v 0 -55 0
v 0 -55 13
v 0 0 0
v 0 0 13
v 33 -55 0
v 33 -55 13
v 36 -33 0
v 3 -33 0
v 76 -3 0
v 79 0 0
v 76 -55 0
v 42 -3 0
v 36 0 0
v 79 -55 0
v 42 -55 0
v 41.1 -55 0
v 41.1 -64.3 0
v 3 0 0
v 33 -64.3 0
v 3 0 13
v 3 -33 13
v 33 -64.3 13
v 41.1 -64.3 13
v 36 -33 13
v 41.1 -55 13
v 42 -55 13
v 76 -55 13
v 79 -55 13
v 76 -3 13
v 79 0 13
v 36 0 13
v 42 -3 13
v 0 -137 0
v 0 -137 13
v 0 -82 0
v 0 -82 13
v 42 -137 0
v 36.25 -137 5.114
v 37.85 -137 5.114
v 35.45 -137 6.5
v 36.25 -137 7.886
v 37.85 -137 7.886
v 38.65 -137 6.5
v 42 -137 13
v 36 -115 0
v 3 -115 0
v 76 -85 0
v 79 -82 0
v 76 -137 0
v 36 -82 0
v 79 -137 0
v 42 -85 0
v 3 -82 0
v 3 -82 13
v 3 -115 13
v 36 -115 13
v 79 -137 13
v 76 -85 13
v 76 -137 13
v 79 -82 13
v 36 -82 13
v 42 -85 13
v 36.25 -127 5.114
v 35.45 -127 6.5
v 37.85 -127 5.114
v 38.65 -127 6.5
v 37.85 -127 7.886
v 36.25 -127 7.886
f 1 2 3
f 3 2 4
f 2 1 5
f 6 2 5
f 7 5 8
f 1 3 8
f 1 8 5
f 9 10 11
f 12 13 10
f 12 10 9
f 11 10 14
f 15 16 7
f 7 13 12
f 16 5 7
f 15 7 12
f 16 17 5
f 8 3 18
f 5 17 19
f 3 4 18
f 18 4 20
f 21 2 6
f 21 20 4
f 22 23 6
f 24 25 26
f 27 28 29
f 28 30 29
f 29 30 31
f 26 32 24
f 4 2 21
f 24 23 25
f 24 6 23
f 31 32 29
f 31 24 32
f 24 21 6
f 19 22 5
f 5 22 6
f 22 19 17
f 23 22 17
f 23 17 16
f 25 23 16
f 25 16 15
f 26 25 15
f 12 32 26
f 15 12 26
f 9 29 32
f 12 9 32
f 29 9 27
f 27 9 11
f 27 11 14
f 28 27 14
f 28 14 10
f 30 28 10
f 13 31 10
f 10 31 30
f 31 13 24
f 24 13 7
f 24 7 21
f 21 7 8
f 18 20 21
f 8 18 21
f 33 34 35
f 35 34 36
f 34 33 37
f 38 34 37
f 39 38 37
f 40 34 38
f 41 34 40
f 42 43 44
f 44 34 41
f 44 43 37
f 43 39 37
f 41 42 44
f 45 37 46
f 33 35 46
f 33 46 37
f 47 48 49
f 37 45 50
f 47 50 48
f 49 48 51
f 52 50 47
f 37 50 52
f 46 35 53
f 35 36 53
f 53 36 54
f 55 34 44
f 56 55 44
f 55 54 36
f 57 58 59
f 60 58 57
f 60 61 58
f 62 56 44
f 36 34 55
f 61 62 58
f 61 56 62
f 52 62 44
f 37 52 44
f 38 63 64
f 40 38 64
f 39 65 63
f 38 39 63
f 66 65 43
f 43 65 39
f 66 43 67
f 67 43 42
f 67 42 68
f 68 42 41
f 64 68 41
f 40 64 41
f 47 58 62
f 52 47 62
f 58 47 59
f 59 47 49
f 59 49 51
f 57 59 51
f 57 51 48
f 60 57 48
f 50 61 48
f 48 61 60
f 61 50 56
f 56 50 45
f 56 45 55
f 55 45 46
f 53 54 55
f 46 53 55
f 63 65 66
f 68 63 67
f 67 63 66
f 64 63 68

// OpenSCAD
// Two hours minus one latte and 2-3 rounds of payload

beefiness=3;

tabWidth=3;

brickHeight=52; // was 49.5, actual 50.927
brickWidth=34; // was 26.75, actual 33.3248
brickLength=115;

armWidth=33; // was 25.4, actual 31.75
armHeight=33;
armLength=brickLength;
armBuffer=6;

speakerPegDistance=100;
speakerPegDepth=6.3;
speakerPegWidth=3.5;
speakerSlotWidth=8.1; // was 8.4
speakerSlotLength=13;
speakerSlotDepth=speakerPegDepth + 3;

screwDiameterM3=3.2; // caliper says 0.112 inches / 2.8448 mm

bracketWidth=13;


module sBracket() {
    union() {
        difference() {
            
            cube([beefiness + armWidth + armBuffer + brickWidth + beefiness,
                    bracketWidth,
                    beefiness + brickHeight]);
            
            translate([beefiness, 0, 0])
            cube([armWidth,
                    bracketWidth,
                    armHeight]);
            
            translate([beefiness + armWidth + armBuffer, 0, beefiness])
            cube([brickWidth,
                    bracketWidth,
                    brickHeight]);
        }
    }
}

rotate([90, 0, 0])
union() {
    sBracket();
    
    translate([armWidth, 0, brickHeight + beefiness])
    cube([speakerSlotWidth, speakerSlotLength, speakerSlotDepth]);
}

rotate([90, 0, 0])
translate([0, 0, brickHeight+30])
difference() {
    sBracket();
    
    translate([armWidth + speakerSlotWidth/2, bracketWidth/2, brickHeight + beefiness - 10])
    cylinder(r=screwDiameterM3/2, h=10);
}
